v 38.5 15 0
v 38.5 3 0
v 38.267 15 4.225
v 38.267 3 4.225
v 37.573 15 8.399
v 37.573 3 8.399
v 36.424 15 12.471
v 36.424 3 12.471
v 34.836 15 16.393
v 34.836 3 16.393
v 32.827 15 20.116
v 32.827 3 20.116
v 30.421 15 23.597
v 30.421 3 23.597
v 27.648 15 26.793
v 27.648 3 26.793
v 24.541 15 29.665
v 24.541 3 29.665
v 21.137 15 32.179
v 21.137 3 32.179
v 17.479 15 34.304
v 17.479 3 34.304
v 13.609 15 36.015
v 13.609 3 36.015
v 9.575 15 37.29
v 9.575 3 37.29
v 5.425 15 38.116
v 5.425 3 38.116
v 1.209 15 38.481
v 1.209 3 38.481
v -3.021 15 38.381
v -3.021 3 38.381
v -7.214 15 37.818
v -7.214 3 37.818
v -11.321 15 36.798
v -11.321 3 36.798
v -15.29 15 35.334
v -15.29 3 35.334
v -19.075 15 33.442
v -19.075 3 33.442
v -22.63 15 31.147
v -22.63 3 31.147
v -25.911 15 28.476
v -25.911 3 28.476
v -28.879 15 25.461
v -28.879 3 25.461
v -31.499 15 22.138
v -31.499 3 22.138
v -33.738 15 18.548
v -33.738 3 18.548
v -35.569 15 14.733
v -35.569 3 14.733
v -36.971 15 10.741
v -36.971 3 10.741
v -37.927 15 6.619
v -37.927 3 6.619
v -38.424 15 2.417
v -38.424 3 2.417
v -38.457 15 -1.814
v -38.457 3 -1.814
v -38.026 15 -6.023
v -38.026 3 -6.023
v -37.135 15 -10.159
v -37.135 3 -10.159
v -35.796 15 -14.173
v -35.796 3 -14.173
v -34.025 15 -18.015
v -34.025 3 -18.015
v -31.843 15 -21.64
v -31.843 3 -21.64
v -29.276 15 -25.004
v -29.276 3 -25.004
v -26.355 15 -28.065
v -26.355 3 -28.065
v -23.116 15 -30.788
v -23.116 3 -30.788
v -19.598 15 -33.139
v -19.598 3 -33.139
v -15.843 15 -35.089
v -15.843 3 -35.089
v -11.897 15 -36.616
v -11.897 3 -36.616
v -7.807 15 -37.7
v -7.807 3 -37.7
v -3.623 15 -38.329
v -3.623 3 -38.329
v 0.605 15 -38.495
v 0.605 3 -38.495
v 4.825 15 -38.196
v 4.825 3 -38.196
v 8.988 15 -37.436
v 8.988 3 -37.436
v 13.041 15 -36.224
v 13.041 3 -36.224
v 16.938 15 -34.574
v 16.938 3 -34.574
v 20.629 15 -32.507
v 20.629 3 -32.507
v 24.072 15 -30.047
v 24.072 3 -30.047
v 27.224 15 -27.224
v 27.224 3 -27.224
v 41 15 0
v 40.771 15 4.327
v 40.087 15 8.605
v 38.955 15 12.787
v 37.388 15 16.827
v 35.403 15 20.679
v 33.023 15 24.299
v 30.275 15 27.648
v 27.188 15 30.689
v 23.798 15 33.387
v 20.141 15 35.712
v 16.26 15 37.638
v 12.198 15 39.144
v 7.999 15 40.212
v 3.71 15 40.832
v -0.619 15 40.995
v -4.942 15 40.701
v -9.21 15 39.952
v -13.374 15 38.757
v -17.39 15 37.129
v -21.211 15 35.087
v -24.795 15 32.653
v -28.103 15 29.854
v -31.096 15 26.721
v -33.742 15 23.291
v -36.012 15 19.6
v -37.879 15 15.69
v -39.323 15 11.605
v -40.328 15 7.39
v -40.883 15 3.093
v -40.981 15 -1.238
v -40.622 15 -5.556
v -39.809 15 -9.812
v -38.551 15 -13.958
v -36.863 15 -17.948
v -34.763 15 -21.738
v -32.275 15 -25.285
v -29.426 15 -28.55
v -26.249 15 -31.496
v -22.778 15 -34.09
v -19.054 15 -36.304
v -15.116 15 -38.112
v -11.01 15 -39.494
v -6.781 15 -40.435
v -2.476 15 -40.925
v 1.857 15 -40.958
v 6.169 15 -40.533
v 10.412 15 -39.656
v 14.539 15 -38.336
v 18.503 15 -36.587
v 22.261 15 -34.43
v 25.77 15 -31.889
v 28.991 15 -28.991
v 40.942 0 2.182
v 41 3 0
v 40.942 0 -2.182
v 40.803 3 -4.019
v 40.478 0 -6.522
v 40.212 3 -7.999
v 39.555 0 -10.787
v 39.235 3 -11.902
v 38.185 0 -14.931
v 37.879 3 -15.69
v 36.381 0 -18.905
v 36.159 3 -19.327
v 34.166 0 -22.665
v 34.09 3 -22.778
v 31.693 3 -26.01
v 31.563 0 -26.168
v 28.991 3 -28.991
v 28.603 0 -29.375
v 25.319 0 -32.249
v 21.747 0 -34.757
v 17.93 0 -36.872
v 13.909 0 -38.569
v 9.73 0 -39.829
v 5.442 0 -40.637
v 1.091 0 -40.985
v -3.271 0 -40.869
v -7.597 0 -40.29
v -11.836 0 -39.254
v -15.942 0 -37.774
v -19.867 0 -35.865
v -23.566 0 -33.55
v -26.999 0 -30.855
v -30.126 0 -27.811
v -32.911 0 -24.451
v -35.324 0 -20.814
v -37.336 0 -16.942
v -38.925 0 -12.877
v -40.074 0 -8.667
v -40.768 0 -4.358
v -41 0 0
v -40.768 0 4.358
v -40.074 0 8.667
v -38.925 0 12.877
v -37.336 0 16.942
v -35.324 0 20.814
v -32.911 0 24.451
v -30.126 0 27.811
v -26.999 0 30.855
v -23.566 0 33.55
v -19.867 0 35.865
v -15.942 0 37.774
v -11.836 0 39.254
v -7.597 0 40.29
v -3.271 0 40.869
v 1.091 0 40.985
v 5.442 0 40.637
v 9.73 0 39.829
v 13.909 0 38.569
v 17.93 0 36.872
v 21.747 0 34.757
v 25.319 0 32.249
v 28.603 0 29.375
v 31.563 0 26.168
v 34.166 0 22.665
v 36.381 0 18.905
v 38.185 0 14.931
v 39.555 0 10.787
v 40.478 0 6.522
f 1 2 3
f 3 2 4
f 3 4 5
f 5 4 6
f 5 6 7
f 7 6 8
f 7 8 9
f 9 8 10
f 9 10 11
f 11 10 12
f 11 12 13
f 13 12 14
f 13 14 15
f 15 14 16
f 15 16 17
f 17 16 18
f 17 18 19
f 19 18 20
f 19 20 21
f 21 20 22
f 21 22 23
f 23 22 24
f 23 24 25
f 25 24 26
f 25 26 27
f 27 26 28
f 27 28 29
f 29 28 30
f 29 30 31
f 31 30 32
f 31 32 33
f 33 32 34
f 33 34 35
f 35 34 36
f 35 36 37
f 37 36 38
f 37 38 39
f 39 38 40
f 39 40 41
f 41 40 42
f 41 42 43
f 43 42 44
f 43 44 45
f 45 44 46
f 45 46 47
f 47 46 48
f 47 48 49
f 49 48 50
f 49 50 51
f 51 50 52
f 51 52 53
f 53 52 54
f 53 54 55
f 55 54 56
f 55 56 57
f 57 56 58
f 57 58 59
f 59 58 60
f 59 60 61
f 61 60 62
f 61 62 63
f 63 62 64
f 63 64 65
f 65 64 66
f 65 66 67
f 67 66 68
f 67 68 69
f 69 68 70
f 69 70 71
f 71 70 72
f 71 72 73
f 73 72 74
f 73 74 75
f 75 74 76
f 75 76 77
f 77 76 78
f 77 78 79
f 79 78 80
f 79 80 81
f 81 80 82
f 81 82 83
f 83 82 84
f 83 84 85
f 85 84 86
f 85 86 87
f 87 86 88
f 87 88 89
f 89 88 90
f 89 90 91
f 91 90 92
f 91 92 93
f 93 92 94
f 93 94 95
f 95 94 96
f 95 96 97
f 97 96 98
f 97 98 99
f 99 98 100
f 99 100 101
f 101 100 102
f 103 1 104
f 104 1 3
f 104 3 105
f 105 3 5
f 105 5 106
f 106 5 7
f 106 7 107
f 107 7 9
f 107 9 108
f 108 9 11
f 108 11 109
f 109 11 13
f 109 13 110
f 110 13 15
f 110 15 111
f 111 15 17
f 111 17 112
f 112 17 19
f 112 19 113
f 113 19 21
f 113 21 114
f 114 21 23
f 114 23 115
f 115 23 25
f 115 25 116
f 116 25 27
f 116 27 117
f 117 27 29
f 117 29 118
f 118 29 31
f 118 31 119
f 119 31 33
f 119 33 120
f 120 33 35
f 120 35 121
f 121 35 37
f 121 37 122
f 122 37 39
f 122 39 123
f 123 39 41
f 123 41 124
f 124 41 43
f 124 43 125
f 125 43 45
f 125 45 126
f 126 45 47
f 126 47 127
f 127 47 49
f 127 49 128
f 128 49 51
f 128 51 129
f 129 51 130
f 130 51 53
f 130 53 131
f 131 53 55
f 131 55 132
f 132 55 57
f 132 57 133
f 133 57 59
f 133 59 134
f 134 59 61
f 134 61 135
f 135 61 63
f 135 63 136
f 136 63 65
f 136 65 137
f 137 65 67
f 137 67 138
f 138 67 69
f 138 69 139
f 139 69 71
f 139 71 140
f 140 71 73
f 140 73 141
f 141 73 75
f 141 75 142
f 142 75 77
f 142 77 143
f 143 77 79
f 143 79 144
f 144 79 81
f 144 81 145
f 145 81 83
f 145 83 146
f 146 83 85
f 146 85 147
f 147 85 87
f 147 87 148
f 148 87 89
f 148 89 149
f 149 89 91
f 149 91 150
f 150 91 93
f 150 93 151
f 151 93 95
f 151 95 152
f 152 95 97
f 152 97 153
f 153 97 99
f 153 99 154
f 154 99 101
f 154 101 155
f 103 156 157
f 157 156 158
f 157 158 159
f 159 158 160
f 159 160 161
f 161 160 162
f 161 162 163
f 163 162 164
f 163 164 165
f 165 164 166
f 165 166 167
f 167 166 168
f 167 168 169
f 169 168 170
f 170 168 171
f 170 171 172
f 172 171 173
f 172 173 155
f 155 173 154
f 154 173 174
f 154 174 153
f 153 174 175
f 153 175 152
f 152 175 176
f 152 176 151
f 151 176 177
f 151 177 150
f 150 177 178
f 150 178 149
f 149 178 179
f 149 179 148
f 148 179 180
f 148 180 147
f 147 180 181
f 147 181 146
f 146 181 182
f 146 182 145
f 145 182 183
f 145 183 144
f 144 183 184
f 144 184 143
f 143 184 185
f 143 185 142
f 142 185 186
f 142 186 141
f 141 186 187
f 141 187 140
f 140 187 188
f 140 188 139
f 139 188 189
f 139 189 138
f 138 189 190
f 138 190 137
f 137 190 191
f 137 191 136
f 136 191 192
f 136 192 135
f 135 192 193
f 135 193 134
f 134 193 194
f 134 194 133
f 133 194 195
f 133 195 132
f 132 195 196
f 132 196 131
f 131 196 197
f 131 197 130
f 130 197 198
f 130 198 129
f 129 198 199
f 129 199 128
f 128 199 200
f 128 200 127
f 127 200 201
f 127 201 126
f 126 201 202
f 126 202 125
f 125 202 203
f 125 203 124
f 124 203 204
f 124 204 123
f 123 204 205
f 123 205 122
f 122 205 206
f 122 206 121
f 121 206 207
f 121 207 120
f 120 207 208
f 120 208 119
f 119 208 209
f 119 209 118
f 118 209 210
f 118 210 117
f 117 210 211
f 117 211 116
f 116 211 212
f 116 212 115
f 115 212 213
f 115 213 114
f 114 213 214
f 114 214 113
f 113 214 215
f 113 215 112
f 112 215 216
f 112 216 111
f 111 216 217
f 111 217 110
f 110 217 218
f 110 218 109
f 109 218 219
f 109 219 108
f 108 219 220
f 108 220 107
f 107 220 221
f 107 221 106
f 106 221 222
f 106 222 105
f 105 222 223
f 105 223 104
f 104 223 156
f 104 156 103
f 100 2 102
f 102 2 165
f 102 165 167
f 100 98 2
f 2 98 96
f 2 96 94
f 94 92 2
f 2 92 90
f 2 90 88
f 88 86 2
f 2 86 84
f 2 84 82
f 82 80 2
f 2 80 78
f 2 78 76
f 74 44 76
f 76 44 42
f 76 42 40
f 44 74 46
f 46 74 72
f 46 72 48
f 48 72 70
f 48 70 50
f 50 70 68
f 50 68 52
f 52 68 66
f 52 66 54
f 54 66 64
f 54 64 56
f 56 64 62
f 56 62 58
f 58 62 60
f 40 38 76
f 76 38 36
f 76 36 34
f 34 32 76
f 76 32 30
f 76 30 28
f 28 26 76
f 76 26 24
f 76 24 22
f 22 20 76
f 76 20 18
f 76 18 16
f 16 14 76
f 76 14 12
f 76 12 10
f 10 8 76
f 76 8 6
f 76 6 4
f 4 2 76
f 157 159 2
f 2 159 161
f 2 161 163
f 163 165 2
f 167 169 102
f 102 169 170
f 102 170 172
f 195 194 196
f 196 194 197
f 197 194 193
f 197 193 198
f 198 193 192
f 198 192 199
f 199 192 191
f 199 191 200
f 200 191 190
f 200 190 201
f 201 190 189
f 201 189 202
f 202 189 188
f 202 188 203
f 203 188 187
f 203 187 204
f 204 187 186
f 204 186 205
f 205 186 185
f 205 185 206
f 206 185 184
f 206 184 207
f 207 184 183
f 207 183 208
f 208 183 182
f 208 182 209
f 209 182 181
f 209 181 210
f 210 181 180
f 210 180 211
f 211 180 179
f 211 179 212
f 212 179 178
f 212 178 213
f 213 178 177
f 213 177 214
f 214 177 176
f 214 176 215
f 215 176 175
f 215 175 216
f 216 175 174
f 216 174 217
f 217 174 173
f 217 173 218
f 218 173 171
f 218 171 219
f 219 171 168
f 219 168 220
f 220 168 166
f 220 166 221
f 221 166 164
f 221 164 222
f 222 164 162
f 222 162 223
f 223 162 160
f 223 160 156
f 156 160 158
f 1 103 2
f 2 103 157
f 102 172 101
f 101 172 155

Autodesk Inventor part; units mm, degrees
ref_plane "YZ Plane" through (0, 0, 0) normal (1, 0, 0) x (0, 1, 0)
ref_plane "XZ Plane" through (0, 0, 0) normal (0, 1, 0) x (-1, 0, 0)
ref_plane "XY Plane" through (0, 0, 0) normal (0, 0, 1) x (1, 0, 0)
sketch "Sketch1" plane through (0, 0, 0) normal (0, 1, 0) x (-1, 0, 0)
  circle A0 centre (0, 0) radius 38.5
  circle A1 centre (0, 0) radius 41
  dimension "d0" = 77
  dimension "d1" = 82
extrude "Extrusion3" add sketch "Sketch1" along normal blind 3 contours A0
sketch "Sketch3" plane through (0, 0, 0) normal (0, 1, 0) x (-1, 0, 0)
  circle A0 centre (0, 0) radius 41
  circle A1 centre (0, 0) radius 38.5
  dimension "d9" = 82
  dimension "d10" = 77
extrude "Extrusion4" add sketch "Sketch3" along normal blind 15
sketch "Sketch4" plane through (0, 3, 0) normal (0, 1, 0) x (1, 0, 0)
  line L0 (0, 0) -> (41, 0)
  circle A0 centre (0, 0) radius 41 projected
  line L1 (0, 0) -> (28.9914, 28.9914)
  line L2 (0, 0) -> (41, 0) construction
  arc A1 (41, 0) -> (28.9914, 28.9914) centre (0, 0) ccw
  dimension "d13" = 41
  dimension "d14" = 45
extrude "Extrusion5" cut sketch "Sketch4" along normal blind 15 contours L1 A0 L0 picked at (21.0272, 17.2566)
properties part number "mainbody"
